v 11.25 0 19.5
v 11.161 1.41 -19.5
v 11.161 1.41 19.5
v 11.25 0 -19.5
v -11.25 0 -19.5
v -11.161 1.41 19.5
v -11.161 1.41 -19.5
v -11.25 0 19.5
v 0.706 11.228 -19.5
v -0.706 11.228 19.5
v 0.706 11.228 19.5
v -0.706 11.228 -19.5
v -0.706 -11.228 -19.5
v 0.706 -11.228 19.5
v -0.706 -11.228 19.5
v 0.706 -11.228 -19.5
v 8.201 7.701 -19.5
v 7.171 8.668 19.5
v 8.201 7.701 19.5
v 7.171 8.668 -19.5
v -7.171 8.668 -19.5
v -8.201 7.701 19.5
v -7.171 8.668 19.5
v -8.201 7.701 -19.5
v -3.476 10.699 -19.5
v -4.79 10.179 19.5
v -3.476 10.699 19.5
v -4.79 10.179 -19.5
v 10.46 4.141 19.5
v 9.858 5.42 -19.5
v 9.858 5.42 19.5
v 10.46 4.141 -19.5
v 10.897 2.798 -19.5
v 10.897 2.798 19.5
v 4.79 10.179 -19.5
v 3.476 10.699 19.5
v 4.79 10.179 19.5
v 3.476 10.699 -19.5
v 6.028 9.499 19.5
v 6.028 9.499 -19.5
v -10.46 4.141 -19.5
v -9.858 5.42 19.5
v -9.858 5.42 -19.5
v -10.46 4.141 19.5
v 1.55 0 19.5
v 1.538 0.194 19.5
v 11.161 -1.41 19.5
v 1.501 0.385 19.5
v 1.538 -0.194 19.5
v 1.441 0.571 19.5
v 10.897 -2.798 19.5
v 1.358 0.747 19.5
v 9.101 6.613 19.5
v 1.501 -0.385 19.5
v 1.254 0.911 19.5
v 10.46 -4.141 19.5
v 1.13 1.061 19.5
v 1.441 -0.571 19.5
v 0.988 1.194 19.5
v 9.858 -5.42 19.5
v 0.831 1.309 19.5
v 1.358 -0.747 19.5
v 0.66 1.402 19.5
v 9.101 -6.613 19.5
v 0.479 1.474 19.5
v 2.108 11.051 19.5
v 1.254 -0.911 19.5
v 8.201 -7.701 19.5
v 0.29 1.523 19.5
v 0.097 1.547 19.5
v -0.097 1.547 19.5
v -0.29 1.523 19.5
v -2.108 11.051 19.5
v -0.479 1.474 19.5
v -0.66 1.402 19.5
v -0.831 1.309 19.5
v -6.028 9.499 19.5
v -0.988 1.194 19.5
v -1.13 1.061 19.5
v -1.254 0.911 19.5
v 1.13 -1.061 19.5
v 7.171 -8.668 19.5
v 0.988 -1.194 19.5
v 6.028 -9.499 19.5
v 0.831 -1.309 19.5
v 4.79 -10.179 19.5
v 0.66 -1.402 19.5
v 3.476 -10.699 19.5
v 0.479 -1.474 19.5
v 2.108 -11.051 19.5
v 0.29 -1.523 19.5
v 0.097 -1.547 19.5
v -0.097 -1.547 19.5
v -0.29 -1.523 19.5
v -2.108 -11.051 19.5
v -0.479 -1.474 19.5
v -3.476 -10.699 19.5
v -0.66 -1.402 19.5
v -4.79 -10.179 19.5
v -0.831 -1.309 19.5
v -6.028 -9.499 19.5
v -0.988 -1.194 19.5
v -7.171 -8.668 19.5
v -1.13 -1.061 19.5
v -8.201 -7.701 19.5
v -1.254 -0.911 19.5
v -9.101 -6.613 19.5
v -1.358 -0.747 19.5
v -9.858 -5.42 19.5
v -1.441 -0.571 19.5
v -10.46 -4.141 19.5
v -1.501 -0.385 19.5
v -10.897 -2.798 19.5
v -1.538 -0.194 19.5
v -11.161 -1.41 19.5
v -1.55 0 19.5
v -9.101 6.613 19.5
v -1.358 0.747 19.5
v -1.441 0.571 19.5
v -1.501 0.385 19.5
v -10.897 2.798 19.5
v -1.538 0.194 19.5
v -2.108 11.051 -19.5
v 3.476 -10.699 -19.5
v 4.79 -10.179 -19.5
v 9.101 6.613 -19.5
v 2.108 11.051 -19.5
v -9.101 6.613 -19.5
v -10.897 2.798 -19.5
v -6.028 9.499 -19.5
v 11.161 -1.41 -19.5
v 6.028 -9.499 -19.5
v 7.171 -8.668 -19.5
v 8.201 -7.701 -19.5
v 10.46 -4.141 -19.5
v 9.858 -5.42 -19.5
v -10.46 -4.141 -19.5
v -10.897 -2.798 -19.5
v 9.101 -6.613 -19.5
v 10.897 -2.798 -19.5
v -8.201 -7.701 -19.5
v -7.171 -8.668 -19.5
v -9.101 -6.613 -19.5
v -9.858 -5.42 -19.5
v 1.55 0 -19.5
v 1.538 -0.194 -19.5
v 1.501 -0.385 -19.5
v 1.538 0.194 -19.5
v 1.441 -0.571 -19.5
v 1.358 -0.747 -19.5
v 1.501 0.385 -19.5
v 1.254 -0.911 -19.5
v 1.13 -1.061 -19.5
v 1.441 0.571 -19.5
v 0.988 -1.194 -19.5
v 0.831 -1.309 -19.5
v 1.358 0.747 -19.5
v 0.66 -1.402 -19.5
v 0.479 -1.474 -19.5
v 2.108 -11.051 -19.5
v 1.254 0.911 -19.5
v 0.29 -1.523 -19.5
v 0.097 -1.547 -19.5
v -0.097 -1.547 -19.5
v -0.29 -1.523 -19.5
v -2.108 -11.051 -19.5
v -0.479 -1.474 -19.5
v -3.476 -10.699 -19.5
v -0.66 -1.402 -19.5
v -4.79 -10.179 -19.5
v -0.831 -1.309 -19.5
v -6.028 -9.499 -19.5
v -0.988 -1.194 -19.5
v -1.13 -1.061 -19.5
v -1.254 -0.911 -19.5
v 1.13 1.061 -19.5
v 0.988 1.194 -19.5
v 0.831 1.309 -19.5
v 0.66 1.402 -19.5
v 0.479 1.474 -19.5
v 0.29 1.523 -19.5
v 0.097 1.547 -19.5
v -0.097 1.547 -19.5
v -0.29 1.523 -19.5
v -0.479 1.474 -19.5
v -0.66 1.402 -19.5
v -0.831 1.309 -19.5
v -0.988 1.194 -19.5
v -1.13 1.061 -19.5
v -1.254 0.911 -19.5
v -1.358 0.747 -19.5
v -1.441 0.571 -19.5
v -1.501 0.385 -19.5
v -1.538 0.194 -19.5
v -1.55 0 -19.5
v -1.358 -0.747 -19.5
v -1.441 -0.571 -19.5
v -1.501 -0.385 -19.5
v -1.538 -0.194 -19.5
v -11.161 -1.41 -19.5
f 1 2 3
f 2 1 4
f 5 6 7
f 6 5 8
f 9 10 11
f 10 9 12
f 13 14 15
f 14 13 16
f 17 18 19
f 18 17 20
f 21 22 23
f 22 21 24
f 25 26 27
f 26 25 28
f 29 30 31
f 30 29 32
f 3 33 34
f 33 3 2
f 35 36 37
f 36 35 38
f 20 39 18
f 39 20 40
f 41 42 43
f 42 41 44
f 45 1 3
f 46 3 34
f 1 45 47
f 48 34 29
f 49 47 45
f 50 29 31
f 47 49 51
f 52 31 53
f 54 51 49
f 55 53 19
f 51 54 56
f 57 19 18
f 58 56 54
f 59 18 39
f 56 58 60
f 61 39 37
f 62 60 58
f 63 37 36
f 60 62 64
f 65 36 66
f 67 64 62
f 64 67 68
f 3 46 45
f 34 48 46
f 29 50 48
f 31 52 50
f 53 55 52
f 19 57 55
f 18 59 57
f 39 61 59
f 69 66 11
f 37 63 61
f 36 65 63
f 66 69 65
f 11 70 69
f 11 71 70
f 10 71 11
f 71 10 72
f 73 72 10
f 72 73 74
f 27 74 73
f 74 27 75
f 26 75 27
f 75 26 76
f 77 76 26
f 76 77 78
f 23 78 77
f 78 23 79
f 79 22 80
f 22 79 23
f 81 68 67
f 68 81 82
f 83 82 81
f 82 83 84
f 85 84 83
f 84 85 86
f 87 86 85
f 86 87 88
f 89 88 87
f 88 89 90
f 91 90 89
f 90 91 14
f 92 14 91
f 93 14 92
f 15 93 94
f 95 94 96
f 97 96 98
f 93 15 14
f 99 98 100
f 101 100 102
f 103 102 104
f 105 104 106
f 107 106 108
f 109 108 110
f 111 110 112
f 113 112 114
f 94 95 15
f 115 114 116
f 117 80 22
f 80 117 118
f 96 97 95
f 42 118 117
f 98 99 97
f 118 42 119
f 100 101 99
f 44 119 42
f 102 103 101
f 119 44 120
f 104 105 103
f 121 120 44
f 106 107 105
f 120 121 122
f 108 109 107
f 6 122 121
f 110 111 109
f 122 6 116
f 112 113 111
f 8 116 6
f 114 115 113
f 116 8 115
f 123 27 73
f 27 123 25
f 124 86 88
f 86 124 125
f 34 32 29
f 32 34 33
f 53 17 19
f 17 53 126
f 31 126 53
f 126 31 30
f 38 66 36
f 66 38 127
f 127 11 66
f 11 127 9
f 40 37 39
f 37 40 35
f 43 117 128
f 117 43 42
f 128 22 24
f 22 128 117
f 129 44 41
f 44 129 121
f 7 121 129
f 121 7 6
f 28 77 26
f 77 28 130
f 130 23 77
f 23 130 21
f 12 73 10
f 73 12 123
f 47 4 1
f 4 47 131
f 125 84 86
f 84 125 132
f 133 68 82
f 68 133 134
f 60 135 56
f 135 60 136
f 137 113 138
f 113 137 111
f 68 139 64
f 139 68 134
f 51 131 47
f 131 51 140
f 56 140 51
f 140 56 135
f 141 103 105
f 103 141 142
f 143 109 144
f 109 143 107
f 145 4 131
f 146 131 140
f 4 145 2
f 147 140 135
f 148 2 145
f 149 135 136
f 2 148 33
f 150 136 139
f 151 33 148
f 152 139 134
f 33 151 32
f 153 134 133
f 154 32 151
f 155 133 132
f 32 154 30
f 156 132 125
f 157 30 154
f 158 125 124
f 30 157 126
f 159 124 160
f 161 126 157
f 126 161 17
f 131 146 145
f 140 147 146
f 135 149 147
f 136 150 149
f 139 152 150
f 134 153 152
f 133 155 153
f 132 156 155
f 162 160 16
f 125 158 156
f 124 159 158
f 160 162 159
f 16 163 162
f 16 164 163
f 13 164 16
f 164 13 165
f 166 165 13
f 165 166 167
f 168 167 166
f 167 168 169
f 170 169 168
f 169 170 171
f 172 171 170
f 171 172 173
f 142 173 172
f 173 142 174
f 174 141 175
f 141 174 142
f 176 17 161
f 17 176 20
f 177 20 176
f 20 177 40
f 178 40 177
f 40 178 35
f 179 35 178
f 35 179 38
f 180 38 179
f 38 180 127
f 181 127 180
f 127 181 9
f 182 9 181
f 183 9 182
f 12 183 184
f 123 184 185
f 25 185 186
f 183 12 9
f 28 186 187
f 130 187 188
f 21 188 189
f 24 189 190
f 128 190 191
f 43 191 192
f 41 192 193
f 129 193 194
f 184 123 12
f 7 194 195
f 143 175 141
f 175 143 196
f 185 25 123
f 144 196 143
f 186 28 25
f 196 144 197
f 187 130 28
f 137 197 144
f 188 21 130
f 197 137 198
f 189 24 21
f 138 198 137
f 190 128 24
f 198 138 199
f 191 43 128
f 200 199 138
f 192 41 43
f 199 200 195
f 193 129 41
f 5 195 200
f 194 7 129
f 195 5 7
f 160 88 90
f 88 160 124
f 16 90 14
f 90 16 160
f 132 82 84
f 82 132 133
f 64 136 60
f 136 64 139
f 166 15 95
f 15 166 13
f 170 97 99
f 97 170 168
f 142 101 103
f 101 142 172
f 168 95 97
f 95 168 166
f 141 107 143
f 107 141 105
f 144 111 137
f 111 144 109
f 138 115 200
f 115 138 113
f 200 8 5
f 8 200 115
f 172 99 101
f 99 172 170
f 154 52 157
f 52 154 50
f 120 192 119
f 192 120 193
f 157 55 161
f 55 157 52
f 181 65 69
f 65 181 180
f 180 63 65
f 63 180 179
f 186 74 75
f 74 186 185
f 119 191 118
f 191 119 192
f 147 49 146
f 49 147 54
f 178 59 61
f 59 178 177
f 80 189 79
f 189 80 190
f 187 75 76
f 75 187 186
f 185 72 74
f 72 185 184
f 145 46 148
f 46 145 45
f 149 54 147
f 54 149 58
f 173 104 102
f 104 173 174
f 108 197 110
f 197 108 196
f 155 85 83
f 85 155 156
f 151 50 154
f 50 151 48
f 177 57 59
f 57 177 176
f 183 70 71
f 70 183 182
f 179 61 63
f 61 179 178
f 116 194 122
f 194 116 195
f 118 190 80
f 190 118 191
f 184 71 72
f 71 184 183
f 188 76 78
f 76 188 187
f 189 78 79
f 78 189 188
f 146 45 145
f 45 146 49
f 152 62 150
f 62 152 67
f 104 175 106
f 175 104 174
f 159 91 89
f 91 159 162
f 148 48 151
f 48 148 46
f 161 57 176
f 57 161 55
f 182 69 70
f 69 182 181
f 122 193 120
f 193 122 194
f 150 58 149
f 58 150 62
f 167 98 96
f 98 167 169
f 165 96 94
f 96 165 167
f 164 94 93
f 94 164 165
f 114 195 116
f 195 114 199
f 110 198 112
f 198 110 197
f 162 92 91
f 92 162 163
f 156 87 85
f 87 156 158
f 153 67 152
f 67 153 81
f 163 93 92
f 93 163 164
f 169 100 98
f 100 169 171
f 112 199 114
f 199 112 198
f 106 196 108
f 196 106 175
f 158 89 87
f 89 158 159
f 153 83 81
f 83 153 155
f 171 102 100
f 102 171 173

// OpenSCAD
$fn = 50;


difference() {
	union() {
		translate(v = [0, 0, -19.5000000000]) {
			cylinder(h = 39, r = 11.2500000000);
		}
	}
	union() {
		translate(v = [0, 0, -100.0000000000]) {
			cylinder(h = 200, r = 1.5500000000);
		}
	}
}
